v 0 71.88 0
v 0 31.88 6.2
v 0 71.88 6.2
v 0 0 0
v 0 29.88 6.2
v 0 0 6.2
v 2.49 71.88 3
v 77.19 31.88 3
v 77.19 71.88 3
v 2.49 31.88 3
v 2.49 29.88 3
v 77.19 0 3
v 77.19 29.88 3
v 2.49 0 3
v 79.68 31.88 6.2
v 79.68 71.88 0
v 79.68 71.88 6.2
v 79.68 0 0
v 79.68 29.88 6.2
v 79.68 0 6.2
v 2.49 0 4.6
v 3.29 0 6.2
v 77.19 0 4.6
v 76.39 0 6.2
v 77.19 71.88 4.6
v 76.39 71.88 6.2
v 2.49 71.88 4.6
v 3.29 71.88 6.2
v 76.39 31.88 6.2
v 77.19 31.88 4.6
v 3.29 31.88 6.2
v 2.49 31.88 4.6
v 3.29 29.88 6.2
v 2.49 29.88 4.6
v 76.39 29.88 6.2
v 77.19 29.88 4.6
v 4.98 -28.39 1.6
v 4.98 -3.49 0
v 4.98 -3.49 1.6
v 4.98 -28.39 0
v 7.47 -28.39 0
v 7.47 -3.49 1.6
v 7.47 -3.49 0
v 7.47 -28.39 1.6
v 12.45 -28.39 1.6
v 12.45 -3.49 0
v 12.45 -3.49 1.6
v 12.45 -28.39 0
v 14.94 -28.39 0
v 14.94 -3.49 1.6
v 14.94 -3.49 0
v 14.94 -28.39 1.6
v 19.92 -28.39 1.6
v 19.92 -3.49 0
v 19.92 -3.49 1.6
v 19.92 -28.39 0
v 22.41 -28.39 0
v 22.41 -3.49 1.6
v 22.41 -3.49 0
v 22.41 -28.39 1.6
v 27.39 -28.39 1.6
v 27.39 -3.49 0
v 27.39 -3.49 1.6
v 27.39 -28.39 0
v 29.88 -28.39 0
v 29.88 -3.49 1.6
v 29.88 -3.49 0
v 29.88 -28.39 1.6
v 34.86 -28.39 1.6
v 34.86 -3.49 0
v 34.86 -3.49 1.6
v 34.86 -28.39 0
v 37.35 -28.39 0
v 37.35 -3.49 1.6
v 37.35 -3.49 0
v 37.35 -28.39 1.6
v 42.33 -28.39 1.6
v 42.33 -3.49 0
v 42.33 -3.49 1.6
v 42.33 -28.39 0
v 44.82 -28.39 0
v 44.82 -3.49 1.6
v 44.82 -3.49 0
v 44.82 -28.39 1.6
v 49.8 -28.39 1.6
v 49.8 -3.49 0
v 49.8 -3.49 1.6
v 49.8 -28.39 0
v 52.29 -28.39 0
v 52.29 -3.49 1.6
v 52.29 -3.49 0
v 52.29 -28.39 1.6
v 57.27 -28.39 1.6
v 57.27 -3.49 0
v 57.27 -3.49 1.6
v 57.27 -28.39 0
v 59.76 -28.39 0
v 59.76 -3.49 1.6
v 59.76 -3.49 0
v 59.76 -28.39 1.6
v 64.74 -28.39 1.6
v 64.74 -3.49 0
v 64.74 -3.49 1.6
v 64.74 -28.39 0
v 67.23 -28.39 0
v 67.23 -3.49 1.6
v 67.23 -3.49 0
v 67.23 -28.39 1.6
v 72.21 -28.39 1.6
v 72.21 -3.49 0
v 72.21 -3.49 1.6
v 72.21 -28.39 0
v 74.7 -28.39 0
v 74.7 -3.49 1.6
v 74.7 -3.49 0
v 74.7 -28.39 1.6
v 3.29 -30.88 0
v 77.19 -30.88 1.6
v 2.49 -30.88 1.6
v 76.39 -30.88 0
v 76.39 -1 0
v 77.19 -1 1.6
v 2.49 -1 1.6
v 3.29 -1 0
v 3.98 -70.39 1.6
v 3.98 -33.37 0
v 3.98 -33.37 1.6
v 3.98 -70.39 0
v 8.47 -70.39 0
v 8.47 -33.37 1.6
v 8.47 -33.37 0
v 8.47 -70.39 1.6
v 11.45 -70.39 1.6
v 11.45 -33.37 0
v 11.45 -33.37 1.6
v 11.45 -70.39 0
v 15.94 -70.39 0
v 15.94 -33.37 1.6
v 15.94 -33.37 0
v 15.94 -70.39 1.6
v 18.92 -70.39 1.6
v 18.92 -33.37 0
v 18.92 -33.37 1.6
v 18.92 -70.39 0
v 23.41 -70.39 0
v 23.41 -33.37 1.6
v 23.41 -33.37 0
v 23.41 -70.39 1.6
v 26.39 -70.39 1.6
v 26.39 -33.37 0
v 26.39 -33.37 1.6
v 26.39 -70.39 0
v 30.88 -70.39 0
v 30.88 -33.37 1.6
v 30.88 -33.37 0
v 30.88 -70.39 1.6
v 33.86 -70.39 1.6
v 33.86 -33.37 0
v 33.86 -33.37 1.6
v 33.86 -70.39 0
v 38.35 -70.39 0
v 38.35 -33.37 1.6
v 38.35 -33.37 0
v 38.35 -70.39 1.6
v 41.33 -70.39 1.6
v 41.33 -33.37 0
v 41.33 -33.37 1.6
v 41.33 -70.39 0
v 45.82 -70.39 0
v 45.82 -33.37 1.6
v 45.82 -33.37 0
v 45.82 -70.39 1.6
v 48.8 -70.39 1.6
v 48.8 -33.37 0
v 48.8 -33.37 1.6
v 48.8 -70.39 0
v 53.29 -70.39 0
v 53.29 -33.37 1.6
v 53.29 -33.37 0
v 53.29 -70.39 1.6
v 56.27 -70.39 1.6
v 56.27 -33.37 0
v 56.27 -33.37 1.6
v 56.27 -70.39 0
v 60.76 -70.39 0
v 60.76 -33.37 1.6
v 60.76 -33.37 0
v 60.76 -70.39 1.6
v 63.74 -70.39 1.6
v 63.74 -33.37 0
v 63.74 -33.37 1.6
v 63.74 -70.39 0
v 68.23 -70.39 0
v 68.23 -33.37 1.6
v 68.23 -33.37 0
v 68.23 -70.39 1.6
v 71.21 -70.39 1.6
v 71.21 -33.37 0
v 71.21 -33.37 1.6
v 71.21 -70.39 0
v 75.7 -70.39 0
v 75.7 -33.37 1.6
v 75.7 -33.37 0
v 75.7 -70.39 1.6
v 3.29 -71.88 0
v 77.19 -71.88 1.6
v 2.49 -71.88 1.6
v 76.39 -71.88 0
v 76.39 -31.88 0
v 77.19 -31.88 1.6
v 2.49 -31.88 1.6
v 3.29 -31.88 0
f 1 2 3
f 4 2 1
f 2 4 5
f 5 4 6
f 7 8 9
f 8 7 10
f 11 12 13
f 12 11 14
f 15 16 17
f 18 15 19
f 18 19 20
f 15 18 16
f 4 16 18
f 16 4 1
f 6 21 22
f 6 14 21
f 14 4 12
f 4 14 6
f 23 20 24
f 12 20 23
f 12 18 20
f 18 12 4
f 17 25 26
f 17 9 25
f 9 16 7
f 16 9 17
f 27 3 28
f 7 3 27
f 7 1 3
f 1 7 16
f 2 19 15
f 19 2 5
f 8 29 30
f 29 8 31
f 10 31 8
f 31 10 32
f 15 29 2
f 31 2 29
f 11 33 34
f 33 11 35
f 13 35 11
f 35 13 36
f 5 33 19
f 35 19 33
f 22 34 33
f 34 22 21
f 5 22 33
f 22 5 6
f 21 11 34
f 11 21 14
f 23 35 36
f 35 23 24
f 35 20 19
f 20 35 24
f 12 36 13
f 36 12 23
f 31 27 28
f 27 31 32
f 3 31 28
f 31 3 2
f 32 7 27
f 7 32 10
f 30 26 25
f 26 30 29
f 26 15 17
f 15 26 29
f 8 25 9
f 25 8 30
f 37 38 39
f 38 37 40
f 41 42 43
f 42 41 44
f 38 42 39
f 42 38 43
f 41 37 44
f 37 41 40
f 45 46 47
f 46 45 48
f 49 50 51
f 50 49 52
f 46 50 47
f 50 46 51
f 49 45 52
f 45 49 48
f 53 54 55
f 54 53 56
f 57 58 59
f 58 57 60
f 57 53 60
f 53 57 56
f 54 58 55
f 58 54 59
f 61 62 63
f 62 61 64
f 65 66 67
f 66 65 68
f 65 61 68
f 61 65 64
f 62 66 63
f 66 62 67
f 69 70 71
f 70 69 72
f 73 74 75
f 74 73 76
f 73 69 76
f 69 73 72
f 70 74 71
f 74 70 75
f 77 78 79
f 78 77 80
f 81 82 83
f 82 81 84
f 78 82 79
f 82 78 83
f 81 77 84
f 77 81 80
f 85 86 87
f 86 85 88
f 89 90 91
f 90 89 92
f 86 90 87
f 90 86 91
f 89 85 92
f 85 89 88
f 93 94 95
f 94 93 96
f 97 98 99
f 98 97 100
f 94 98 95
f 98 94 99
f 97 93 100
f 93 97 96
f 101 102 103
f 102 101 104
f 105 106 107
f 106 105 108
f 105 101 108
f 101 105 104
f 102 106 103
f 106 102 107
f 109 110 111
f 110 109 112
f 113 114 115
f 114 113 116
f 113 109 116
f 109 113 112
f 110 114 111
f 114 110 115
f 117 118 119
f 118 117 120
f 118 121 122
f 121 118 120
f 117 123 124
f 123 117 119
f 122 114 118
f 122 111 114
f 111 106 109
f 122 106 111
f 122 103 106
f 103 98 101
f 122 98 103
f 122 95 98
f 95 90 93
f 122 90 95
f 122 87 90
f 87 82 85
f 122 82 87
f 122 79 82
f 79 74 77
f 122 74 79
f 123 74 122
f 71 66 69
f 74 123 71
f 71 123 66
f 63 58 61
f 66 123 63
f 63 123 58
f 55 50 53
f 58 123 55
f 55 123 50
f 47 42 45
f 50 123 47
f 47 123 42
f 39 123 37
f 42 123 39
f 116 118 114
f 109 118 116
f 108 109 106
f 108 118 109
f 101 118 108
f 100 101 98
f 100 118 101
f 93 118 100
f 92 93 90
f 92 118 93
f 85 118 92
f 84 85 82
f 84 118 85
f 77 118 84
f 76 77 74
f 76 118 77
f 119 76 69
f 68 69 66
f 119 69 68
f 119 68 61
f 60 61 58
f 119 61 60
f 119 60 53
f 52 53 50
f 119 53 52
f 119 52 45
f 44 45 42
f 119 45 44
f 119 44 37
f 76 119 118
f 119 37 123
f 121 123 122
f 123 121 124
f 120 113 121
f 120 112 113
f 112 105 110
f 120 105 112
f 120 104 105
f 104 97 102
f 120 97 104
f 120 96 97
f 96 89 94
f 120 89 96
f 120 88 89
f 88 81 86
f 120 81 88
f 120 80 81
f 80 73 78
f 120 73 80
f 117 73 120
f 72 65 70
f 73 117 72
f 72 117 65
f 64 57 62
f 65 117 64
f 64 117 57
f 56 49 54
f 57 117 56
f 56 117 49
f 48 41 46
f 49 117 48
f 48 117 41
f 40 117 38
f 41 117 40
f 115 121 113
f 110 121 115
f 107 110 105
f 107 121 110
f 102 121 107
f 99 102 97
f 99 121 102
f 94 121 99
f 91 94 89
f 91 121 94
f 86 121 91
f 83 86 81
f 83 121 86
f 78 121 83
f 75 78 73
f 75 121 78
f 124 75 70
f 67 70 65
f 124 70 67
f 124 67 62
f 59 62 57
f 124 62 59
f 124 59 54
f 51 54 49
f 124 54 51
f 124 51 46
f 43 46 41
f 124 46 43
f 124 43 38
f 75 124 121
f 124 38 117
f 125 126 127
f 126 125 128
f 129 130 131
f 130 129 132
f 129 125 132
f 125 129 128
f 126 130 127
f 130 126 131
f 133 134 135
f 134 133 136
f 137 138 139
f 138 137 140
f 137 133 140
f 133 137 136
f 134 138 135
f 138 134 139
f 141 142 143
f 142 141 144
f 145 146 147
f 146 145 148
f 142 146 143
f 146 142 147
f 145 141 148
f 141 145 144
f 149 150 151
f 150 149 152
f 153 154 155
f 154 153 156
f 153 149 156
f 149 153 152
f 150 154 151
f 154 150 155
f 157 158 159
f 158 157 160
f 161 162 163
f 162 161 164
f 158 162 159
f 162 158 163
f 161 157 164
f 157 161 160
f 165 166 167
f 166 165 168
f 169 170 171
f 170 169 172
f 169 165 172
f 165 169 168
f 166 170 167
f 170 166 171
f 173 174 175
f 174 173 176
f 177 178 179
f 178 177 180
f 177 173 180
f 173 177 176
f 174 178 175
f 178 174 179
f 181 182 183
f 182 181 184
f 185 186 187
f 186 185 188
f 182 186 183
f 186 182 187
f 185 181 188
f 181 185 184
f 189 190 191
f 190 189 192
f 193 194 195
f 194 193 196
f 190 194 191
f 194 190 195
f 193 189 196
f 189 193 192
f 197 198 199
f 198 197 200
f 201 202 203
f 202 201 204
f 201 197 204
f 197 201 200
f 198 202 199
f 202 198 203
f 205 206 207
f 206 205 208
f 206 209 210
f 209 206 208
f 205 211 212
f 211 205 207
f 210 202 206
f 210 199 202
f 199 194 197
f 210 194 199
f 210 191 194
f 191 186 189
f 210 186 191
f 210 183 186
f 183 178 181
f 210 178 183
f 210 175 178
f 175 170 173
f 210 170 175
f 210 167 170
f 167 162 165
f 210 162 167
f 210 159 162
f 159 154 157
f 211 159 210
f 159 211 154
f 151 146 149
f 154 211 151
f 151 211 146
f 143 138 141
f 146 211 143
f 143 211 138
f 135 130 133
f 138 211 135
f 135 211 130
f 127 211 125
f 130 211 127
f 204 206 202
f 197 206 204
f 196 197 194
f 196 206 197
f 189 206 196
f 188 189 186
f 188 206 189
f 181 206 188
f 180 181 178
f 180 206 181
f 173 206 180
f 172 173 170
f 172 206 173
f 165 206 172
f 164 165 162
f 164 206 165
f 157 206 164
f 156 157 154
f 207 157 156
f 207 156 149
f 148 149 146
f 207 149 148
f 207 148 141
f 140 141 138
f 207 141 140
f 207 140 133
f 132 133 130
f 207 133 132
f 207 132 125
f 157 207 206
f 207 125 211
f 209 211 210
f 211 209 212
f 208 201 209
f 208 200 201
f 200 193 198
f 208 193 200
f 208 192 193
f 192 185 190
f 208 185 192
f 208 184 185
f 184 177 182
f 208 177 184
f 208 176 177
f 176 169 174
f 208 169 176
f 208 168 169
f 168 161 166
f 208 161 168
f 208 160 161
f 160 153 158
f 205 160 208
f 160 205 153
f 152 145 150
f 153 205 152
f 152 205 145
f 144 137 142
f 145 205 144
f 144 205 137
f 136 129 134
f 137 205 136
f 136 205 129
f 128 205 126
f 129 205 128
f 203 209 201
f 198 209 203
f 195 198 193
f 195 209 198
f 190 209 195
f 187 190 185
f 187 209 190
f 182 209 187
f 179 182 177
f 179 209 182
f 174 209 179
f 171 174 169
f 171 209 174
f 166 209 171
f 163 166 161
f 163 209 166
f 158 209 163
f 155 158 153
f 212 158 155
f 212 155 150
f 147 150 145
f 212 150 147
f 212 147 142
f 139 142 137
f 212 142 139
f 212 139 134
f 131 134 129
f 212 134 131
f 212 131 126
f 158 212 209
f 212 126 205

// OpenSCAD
//---[ USER Customizable Parameters ]-----------------------------------------

/* [General] */

// Part to generate
part = 3;// [0:Base,1:Pcb cover,2:Label cover,3:All,4:Assembled]

// Tickness of the base
base_thickness_mm = 3; //[0.1:10]

// Tickness of the pcb with the connectors
pcb_thickness_mm = 1.60; //[0.1:10]

// Tickness of the layer of plastic on top of the pcb
pcb_cover_thickness_mm = 1.60; //[0.1:10]

// Separator between connections side and labels
separator_thickness_mm = 2;

/* [Connectors side] */

// Number of pins
number_of_pins = 10; //[1:50]

// Number of rows of pins
number_of_rows = 10; //[1:50]

// Separation between rows (in pin width)
rows_in_between = 2; //[1:10]

// Horizontal separation between sides (in pin width)
rows_extra_horizontal = 1; //[1:10]

// Vertical separation between sides (in pin width)
rows_extra_vertical = 1; //[1:10]

/* [Labelling side] */

// Label length (in mm)
label_length_mm = 40; //[1:10]

// Label margin (in mm)
label_margin = 1;  //[0:100]

//----------------------------------------------------------------------------

distance_between_pins_mm = 2.49;
slider_holder_angle_ratio_percent = 50; // Percent of pcb_cover_thickness_mm. This changes the angle for holding the cover 
cover_rim_mm = 2;

//----------------------------------------------------------------------------

connectors_base_width = (number_of_rows*(1+rows_in_between)+rows_extra_horizontal*2) * distance_between_pins_mm;
connectors_base_length = (number_of_pins+rows_extra_vertical*2) * distance_between_pins_mm;

module holder(length)
{
  rotate([90,0,0])
    linear_extrude(length)  
      polygon([
      [0,0],
      [0,pcb_thickness_mm+pcb_cover_thickness_mm],
      [rows_extra_horizontal*distance_between_pins_mm+(pcb_cover_thickness_mm/100*slider_holder_angle_ratio_percent),pcb_thickness_mm+pcb_cover_thickness_mm],
      [rows_extra_horizontal*distance_between_pins_mm,pcb_thickness_mm],
      [rows_extra_horizontal*distance_between_pins_mm,0],
      ]);
}

module base()
{
  union() 
  {
    cube([connectors_base_width,connectors_base_length+label_length_mm+separator_thickness_mm,base_thickness_mm]);
    
    // Separator
    translate([0,connectors_base_length,base_thickness_mm])
      cube([connectors_base_width,separator_thickness_mm,pcb_cover_thickness_mm+pcb_thickness_mm]);
      
    // Holder for the PCB
    translate([0,connectors_base_length,base_thickness_mm])
        holder(connectors_base_length);
    
    translate([connectors_base_width,0,base_thickness_mm])    
      rotate([0,0,180])   
        holder(connectors_base_length);
      
    // Holder for the labels
    translate([0,connectors_base_length+label_length_mm+separator_thickness_mm,base_thickness_mm])
      holder(label_length_mm); 
      
    translate([connectors_base_width,connectors_base_length+separator_thickness_mm,base_thickness_mm])
      rotate([0,0,180])  
        holder(label_length_mm); 
  }
}

module cover(length,margin)
{
  rotate([180,0,0]) // Just to flip it for printing
    union()
    {
    /*translate([rows_extra_horizontal*2,0,0])
      cube([connectors_base_width-rows_extra_horizontal*2*distance_between_pins_mm,cover_rim_mm,cover_rim_mm]);*/
      difference()
      {
        rotate([90,0,0])
          linear_extrude(length)  
            polygon([
            [rows_extra_horizontal*distance_between_pins_mm+(pcb_cover_thickness_mm/100*slider_holder_angle_ratio_percent),pcb_cover_thickness_mm],
            [rows_extra_horizontal*distance_between_pins_mm,0],
            [connectors_base_width-rows_extra_horizontal*distance_between_pins_mm,0],
            [(pcb_cover_thickness_mm/100*-slider_holder_angle_ratio_percent)+connectors_base_width-rows_extra_horizontal*distance_between_pins_mm,pcb_cover_thickness_mm],
            ]);
         
        // Holes for the pins/labels
        translate([-rows_extra_horizontal*distance_between_pins_mm-margin,-length+rows_extra_vertical*distance_between_pins_mm-margin,-1])
        for(i=[0:number_of_rows])
          translate([(1+rows_in_between)*distance_between_pins_mm*i,0,0])
            cube([distance_between_pins_mm+margin*2,length-(2*rows_extra_horizontal*distance_between_pins_mm)+margin*2,pcb_thickness_mm+2]);
      } 
    }
}

module pcb_cover()
{
  cover(connectors_base_length,0);
}

module label_cover()
{
  cover(label_length_mm,label_margin);
}

// ----------------------------------------------------

// Let's draw!

// Base only
if(part==0)
  base();

// Pcb Cover
if(part==1)
  pcb_cover();
  
// Label Cover
if(part==2)
  label_cover();
  
// All parts (ready to print)
if(part==3)
{
  base();
  

  translate([0,-1-connectors_base_length,pcb_cover_thickness_mm])
    pcb_cover();
  
  translate([0,-2-connectors_base_length-label_length_mm,pcb_cover_thickness_mm])
  label_cover();
} 

// Assembled
if(part==4)
{
  color("blue")
    base();
  
  color("red")
    translate([0,connectors_base_length,base_thickness_mm+pcb_thickness_mm])
      rotate([180,0,0]) // Turn it over, we are not printing
        pcb_cover();
  
  color("green")
  translate([0,connectors_base_length+label_length_mm+separator_thickness_mm,base_thickness_mm+pcb_thickness_mm])
  rotate([180,0,0]) // Turn it over, we are not printing
  label_cover();
} 
